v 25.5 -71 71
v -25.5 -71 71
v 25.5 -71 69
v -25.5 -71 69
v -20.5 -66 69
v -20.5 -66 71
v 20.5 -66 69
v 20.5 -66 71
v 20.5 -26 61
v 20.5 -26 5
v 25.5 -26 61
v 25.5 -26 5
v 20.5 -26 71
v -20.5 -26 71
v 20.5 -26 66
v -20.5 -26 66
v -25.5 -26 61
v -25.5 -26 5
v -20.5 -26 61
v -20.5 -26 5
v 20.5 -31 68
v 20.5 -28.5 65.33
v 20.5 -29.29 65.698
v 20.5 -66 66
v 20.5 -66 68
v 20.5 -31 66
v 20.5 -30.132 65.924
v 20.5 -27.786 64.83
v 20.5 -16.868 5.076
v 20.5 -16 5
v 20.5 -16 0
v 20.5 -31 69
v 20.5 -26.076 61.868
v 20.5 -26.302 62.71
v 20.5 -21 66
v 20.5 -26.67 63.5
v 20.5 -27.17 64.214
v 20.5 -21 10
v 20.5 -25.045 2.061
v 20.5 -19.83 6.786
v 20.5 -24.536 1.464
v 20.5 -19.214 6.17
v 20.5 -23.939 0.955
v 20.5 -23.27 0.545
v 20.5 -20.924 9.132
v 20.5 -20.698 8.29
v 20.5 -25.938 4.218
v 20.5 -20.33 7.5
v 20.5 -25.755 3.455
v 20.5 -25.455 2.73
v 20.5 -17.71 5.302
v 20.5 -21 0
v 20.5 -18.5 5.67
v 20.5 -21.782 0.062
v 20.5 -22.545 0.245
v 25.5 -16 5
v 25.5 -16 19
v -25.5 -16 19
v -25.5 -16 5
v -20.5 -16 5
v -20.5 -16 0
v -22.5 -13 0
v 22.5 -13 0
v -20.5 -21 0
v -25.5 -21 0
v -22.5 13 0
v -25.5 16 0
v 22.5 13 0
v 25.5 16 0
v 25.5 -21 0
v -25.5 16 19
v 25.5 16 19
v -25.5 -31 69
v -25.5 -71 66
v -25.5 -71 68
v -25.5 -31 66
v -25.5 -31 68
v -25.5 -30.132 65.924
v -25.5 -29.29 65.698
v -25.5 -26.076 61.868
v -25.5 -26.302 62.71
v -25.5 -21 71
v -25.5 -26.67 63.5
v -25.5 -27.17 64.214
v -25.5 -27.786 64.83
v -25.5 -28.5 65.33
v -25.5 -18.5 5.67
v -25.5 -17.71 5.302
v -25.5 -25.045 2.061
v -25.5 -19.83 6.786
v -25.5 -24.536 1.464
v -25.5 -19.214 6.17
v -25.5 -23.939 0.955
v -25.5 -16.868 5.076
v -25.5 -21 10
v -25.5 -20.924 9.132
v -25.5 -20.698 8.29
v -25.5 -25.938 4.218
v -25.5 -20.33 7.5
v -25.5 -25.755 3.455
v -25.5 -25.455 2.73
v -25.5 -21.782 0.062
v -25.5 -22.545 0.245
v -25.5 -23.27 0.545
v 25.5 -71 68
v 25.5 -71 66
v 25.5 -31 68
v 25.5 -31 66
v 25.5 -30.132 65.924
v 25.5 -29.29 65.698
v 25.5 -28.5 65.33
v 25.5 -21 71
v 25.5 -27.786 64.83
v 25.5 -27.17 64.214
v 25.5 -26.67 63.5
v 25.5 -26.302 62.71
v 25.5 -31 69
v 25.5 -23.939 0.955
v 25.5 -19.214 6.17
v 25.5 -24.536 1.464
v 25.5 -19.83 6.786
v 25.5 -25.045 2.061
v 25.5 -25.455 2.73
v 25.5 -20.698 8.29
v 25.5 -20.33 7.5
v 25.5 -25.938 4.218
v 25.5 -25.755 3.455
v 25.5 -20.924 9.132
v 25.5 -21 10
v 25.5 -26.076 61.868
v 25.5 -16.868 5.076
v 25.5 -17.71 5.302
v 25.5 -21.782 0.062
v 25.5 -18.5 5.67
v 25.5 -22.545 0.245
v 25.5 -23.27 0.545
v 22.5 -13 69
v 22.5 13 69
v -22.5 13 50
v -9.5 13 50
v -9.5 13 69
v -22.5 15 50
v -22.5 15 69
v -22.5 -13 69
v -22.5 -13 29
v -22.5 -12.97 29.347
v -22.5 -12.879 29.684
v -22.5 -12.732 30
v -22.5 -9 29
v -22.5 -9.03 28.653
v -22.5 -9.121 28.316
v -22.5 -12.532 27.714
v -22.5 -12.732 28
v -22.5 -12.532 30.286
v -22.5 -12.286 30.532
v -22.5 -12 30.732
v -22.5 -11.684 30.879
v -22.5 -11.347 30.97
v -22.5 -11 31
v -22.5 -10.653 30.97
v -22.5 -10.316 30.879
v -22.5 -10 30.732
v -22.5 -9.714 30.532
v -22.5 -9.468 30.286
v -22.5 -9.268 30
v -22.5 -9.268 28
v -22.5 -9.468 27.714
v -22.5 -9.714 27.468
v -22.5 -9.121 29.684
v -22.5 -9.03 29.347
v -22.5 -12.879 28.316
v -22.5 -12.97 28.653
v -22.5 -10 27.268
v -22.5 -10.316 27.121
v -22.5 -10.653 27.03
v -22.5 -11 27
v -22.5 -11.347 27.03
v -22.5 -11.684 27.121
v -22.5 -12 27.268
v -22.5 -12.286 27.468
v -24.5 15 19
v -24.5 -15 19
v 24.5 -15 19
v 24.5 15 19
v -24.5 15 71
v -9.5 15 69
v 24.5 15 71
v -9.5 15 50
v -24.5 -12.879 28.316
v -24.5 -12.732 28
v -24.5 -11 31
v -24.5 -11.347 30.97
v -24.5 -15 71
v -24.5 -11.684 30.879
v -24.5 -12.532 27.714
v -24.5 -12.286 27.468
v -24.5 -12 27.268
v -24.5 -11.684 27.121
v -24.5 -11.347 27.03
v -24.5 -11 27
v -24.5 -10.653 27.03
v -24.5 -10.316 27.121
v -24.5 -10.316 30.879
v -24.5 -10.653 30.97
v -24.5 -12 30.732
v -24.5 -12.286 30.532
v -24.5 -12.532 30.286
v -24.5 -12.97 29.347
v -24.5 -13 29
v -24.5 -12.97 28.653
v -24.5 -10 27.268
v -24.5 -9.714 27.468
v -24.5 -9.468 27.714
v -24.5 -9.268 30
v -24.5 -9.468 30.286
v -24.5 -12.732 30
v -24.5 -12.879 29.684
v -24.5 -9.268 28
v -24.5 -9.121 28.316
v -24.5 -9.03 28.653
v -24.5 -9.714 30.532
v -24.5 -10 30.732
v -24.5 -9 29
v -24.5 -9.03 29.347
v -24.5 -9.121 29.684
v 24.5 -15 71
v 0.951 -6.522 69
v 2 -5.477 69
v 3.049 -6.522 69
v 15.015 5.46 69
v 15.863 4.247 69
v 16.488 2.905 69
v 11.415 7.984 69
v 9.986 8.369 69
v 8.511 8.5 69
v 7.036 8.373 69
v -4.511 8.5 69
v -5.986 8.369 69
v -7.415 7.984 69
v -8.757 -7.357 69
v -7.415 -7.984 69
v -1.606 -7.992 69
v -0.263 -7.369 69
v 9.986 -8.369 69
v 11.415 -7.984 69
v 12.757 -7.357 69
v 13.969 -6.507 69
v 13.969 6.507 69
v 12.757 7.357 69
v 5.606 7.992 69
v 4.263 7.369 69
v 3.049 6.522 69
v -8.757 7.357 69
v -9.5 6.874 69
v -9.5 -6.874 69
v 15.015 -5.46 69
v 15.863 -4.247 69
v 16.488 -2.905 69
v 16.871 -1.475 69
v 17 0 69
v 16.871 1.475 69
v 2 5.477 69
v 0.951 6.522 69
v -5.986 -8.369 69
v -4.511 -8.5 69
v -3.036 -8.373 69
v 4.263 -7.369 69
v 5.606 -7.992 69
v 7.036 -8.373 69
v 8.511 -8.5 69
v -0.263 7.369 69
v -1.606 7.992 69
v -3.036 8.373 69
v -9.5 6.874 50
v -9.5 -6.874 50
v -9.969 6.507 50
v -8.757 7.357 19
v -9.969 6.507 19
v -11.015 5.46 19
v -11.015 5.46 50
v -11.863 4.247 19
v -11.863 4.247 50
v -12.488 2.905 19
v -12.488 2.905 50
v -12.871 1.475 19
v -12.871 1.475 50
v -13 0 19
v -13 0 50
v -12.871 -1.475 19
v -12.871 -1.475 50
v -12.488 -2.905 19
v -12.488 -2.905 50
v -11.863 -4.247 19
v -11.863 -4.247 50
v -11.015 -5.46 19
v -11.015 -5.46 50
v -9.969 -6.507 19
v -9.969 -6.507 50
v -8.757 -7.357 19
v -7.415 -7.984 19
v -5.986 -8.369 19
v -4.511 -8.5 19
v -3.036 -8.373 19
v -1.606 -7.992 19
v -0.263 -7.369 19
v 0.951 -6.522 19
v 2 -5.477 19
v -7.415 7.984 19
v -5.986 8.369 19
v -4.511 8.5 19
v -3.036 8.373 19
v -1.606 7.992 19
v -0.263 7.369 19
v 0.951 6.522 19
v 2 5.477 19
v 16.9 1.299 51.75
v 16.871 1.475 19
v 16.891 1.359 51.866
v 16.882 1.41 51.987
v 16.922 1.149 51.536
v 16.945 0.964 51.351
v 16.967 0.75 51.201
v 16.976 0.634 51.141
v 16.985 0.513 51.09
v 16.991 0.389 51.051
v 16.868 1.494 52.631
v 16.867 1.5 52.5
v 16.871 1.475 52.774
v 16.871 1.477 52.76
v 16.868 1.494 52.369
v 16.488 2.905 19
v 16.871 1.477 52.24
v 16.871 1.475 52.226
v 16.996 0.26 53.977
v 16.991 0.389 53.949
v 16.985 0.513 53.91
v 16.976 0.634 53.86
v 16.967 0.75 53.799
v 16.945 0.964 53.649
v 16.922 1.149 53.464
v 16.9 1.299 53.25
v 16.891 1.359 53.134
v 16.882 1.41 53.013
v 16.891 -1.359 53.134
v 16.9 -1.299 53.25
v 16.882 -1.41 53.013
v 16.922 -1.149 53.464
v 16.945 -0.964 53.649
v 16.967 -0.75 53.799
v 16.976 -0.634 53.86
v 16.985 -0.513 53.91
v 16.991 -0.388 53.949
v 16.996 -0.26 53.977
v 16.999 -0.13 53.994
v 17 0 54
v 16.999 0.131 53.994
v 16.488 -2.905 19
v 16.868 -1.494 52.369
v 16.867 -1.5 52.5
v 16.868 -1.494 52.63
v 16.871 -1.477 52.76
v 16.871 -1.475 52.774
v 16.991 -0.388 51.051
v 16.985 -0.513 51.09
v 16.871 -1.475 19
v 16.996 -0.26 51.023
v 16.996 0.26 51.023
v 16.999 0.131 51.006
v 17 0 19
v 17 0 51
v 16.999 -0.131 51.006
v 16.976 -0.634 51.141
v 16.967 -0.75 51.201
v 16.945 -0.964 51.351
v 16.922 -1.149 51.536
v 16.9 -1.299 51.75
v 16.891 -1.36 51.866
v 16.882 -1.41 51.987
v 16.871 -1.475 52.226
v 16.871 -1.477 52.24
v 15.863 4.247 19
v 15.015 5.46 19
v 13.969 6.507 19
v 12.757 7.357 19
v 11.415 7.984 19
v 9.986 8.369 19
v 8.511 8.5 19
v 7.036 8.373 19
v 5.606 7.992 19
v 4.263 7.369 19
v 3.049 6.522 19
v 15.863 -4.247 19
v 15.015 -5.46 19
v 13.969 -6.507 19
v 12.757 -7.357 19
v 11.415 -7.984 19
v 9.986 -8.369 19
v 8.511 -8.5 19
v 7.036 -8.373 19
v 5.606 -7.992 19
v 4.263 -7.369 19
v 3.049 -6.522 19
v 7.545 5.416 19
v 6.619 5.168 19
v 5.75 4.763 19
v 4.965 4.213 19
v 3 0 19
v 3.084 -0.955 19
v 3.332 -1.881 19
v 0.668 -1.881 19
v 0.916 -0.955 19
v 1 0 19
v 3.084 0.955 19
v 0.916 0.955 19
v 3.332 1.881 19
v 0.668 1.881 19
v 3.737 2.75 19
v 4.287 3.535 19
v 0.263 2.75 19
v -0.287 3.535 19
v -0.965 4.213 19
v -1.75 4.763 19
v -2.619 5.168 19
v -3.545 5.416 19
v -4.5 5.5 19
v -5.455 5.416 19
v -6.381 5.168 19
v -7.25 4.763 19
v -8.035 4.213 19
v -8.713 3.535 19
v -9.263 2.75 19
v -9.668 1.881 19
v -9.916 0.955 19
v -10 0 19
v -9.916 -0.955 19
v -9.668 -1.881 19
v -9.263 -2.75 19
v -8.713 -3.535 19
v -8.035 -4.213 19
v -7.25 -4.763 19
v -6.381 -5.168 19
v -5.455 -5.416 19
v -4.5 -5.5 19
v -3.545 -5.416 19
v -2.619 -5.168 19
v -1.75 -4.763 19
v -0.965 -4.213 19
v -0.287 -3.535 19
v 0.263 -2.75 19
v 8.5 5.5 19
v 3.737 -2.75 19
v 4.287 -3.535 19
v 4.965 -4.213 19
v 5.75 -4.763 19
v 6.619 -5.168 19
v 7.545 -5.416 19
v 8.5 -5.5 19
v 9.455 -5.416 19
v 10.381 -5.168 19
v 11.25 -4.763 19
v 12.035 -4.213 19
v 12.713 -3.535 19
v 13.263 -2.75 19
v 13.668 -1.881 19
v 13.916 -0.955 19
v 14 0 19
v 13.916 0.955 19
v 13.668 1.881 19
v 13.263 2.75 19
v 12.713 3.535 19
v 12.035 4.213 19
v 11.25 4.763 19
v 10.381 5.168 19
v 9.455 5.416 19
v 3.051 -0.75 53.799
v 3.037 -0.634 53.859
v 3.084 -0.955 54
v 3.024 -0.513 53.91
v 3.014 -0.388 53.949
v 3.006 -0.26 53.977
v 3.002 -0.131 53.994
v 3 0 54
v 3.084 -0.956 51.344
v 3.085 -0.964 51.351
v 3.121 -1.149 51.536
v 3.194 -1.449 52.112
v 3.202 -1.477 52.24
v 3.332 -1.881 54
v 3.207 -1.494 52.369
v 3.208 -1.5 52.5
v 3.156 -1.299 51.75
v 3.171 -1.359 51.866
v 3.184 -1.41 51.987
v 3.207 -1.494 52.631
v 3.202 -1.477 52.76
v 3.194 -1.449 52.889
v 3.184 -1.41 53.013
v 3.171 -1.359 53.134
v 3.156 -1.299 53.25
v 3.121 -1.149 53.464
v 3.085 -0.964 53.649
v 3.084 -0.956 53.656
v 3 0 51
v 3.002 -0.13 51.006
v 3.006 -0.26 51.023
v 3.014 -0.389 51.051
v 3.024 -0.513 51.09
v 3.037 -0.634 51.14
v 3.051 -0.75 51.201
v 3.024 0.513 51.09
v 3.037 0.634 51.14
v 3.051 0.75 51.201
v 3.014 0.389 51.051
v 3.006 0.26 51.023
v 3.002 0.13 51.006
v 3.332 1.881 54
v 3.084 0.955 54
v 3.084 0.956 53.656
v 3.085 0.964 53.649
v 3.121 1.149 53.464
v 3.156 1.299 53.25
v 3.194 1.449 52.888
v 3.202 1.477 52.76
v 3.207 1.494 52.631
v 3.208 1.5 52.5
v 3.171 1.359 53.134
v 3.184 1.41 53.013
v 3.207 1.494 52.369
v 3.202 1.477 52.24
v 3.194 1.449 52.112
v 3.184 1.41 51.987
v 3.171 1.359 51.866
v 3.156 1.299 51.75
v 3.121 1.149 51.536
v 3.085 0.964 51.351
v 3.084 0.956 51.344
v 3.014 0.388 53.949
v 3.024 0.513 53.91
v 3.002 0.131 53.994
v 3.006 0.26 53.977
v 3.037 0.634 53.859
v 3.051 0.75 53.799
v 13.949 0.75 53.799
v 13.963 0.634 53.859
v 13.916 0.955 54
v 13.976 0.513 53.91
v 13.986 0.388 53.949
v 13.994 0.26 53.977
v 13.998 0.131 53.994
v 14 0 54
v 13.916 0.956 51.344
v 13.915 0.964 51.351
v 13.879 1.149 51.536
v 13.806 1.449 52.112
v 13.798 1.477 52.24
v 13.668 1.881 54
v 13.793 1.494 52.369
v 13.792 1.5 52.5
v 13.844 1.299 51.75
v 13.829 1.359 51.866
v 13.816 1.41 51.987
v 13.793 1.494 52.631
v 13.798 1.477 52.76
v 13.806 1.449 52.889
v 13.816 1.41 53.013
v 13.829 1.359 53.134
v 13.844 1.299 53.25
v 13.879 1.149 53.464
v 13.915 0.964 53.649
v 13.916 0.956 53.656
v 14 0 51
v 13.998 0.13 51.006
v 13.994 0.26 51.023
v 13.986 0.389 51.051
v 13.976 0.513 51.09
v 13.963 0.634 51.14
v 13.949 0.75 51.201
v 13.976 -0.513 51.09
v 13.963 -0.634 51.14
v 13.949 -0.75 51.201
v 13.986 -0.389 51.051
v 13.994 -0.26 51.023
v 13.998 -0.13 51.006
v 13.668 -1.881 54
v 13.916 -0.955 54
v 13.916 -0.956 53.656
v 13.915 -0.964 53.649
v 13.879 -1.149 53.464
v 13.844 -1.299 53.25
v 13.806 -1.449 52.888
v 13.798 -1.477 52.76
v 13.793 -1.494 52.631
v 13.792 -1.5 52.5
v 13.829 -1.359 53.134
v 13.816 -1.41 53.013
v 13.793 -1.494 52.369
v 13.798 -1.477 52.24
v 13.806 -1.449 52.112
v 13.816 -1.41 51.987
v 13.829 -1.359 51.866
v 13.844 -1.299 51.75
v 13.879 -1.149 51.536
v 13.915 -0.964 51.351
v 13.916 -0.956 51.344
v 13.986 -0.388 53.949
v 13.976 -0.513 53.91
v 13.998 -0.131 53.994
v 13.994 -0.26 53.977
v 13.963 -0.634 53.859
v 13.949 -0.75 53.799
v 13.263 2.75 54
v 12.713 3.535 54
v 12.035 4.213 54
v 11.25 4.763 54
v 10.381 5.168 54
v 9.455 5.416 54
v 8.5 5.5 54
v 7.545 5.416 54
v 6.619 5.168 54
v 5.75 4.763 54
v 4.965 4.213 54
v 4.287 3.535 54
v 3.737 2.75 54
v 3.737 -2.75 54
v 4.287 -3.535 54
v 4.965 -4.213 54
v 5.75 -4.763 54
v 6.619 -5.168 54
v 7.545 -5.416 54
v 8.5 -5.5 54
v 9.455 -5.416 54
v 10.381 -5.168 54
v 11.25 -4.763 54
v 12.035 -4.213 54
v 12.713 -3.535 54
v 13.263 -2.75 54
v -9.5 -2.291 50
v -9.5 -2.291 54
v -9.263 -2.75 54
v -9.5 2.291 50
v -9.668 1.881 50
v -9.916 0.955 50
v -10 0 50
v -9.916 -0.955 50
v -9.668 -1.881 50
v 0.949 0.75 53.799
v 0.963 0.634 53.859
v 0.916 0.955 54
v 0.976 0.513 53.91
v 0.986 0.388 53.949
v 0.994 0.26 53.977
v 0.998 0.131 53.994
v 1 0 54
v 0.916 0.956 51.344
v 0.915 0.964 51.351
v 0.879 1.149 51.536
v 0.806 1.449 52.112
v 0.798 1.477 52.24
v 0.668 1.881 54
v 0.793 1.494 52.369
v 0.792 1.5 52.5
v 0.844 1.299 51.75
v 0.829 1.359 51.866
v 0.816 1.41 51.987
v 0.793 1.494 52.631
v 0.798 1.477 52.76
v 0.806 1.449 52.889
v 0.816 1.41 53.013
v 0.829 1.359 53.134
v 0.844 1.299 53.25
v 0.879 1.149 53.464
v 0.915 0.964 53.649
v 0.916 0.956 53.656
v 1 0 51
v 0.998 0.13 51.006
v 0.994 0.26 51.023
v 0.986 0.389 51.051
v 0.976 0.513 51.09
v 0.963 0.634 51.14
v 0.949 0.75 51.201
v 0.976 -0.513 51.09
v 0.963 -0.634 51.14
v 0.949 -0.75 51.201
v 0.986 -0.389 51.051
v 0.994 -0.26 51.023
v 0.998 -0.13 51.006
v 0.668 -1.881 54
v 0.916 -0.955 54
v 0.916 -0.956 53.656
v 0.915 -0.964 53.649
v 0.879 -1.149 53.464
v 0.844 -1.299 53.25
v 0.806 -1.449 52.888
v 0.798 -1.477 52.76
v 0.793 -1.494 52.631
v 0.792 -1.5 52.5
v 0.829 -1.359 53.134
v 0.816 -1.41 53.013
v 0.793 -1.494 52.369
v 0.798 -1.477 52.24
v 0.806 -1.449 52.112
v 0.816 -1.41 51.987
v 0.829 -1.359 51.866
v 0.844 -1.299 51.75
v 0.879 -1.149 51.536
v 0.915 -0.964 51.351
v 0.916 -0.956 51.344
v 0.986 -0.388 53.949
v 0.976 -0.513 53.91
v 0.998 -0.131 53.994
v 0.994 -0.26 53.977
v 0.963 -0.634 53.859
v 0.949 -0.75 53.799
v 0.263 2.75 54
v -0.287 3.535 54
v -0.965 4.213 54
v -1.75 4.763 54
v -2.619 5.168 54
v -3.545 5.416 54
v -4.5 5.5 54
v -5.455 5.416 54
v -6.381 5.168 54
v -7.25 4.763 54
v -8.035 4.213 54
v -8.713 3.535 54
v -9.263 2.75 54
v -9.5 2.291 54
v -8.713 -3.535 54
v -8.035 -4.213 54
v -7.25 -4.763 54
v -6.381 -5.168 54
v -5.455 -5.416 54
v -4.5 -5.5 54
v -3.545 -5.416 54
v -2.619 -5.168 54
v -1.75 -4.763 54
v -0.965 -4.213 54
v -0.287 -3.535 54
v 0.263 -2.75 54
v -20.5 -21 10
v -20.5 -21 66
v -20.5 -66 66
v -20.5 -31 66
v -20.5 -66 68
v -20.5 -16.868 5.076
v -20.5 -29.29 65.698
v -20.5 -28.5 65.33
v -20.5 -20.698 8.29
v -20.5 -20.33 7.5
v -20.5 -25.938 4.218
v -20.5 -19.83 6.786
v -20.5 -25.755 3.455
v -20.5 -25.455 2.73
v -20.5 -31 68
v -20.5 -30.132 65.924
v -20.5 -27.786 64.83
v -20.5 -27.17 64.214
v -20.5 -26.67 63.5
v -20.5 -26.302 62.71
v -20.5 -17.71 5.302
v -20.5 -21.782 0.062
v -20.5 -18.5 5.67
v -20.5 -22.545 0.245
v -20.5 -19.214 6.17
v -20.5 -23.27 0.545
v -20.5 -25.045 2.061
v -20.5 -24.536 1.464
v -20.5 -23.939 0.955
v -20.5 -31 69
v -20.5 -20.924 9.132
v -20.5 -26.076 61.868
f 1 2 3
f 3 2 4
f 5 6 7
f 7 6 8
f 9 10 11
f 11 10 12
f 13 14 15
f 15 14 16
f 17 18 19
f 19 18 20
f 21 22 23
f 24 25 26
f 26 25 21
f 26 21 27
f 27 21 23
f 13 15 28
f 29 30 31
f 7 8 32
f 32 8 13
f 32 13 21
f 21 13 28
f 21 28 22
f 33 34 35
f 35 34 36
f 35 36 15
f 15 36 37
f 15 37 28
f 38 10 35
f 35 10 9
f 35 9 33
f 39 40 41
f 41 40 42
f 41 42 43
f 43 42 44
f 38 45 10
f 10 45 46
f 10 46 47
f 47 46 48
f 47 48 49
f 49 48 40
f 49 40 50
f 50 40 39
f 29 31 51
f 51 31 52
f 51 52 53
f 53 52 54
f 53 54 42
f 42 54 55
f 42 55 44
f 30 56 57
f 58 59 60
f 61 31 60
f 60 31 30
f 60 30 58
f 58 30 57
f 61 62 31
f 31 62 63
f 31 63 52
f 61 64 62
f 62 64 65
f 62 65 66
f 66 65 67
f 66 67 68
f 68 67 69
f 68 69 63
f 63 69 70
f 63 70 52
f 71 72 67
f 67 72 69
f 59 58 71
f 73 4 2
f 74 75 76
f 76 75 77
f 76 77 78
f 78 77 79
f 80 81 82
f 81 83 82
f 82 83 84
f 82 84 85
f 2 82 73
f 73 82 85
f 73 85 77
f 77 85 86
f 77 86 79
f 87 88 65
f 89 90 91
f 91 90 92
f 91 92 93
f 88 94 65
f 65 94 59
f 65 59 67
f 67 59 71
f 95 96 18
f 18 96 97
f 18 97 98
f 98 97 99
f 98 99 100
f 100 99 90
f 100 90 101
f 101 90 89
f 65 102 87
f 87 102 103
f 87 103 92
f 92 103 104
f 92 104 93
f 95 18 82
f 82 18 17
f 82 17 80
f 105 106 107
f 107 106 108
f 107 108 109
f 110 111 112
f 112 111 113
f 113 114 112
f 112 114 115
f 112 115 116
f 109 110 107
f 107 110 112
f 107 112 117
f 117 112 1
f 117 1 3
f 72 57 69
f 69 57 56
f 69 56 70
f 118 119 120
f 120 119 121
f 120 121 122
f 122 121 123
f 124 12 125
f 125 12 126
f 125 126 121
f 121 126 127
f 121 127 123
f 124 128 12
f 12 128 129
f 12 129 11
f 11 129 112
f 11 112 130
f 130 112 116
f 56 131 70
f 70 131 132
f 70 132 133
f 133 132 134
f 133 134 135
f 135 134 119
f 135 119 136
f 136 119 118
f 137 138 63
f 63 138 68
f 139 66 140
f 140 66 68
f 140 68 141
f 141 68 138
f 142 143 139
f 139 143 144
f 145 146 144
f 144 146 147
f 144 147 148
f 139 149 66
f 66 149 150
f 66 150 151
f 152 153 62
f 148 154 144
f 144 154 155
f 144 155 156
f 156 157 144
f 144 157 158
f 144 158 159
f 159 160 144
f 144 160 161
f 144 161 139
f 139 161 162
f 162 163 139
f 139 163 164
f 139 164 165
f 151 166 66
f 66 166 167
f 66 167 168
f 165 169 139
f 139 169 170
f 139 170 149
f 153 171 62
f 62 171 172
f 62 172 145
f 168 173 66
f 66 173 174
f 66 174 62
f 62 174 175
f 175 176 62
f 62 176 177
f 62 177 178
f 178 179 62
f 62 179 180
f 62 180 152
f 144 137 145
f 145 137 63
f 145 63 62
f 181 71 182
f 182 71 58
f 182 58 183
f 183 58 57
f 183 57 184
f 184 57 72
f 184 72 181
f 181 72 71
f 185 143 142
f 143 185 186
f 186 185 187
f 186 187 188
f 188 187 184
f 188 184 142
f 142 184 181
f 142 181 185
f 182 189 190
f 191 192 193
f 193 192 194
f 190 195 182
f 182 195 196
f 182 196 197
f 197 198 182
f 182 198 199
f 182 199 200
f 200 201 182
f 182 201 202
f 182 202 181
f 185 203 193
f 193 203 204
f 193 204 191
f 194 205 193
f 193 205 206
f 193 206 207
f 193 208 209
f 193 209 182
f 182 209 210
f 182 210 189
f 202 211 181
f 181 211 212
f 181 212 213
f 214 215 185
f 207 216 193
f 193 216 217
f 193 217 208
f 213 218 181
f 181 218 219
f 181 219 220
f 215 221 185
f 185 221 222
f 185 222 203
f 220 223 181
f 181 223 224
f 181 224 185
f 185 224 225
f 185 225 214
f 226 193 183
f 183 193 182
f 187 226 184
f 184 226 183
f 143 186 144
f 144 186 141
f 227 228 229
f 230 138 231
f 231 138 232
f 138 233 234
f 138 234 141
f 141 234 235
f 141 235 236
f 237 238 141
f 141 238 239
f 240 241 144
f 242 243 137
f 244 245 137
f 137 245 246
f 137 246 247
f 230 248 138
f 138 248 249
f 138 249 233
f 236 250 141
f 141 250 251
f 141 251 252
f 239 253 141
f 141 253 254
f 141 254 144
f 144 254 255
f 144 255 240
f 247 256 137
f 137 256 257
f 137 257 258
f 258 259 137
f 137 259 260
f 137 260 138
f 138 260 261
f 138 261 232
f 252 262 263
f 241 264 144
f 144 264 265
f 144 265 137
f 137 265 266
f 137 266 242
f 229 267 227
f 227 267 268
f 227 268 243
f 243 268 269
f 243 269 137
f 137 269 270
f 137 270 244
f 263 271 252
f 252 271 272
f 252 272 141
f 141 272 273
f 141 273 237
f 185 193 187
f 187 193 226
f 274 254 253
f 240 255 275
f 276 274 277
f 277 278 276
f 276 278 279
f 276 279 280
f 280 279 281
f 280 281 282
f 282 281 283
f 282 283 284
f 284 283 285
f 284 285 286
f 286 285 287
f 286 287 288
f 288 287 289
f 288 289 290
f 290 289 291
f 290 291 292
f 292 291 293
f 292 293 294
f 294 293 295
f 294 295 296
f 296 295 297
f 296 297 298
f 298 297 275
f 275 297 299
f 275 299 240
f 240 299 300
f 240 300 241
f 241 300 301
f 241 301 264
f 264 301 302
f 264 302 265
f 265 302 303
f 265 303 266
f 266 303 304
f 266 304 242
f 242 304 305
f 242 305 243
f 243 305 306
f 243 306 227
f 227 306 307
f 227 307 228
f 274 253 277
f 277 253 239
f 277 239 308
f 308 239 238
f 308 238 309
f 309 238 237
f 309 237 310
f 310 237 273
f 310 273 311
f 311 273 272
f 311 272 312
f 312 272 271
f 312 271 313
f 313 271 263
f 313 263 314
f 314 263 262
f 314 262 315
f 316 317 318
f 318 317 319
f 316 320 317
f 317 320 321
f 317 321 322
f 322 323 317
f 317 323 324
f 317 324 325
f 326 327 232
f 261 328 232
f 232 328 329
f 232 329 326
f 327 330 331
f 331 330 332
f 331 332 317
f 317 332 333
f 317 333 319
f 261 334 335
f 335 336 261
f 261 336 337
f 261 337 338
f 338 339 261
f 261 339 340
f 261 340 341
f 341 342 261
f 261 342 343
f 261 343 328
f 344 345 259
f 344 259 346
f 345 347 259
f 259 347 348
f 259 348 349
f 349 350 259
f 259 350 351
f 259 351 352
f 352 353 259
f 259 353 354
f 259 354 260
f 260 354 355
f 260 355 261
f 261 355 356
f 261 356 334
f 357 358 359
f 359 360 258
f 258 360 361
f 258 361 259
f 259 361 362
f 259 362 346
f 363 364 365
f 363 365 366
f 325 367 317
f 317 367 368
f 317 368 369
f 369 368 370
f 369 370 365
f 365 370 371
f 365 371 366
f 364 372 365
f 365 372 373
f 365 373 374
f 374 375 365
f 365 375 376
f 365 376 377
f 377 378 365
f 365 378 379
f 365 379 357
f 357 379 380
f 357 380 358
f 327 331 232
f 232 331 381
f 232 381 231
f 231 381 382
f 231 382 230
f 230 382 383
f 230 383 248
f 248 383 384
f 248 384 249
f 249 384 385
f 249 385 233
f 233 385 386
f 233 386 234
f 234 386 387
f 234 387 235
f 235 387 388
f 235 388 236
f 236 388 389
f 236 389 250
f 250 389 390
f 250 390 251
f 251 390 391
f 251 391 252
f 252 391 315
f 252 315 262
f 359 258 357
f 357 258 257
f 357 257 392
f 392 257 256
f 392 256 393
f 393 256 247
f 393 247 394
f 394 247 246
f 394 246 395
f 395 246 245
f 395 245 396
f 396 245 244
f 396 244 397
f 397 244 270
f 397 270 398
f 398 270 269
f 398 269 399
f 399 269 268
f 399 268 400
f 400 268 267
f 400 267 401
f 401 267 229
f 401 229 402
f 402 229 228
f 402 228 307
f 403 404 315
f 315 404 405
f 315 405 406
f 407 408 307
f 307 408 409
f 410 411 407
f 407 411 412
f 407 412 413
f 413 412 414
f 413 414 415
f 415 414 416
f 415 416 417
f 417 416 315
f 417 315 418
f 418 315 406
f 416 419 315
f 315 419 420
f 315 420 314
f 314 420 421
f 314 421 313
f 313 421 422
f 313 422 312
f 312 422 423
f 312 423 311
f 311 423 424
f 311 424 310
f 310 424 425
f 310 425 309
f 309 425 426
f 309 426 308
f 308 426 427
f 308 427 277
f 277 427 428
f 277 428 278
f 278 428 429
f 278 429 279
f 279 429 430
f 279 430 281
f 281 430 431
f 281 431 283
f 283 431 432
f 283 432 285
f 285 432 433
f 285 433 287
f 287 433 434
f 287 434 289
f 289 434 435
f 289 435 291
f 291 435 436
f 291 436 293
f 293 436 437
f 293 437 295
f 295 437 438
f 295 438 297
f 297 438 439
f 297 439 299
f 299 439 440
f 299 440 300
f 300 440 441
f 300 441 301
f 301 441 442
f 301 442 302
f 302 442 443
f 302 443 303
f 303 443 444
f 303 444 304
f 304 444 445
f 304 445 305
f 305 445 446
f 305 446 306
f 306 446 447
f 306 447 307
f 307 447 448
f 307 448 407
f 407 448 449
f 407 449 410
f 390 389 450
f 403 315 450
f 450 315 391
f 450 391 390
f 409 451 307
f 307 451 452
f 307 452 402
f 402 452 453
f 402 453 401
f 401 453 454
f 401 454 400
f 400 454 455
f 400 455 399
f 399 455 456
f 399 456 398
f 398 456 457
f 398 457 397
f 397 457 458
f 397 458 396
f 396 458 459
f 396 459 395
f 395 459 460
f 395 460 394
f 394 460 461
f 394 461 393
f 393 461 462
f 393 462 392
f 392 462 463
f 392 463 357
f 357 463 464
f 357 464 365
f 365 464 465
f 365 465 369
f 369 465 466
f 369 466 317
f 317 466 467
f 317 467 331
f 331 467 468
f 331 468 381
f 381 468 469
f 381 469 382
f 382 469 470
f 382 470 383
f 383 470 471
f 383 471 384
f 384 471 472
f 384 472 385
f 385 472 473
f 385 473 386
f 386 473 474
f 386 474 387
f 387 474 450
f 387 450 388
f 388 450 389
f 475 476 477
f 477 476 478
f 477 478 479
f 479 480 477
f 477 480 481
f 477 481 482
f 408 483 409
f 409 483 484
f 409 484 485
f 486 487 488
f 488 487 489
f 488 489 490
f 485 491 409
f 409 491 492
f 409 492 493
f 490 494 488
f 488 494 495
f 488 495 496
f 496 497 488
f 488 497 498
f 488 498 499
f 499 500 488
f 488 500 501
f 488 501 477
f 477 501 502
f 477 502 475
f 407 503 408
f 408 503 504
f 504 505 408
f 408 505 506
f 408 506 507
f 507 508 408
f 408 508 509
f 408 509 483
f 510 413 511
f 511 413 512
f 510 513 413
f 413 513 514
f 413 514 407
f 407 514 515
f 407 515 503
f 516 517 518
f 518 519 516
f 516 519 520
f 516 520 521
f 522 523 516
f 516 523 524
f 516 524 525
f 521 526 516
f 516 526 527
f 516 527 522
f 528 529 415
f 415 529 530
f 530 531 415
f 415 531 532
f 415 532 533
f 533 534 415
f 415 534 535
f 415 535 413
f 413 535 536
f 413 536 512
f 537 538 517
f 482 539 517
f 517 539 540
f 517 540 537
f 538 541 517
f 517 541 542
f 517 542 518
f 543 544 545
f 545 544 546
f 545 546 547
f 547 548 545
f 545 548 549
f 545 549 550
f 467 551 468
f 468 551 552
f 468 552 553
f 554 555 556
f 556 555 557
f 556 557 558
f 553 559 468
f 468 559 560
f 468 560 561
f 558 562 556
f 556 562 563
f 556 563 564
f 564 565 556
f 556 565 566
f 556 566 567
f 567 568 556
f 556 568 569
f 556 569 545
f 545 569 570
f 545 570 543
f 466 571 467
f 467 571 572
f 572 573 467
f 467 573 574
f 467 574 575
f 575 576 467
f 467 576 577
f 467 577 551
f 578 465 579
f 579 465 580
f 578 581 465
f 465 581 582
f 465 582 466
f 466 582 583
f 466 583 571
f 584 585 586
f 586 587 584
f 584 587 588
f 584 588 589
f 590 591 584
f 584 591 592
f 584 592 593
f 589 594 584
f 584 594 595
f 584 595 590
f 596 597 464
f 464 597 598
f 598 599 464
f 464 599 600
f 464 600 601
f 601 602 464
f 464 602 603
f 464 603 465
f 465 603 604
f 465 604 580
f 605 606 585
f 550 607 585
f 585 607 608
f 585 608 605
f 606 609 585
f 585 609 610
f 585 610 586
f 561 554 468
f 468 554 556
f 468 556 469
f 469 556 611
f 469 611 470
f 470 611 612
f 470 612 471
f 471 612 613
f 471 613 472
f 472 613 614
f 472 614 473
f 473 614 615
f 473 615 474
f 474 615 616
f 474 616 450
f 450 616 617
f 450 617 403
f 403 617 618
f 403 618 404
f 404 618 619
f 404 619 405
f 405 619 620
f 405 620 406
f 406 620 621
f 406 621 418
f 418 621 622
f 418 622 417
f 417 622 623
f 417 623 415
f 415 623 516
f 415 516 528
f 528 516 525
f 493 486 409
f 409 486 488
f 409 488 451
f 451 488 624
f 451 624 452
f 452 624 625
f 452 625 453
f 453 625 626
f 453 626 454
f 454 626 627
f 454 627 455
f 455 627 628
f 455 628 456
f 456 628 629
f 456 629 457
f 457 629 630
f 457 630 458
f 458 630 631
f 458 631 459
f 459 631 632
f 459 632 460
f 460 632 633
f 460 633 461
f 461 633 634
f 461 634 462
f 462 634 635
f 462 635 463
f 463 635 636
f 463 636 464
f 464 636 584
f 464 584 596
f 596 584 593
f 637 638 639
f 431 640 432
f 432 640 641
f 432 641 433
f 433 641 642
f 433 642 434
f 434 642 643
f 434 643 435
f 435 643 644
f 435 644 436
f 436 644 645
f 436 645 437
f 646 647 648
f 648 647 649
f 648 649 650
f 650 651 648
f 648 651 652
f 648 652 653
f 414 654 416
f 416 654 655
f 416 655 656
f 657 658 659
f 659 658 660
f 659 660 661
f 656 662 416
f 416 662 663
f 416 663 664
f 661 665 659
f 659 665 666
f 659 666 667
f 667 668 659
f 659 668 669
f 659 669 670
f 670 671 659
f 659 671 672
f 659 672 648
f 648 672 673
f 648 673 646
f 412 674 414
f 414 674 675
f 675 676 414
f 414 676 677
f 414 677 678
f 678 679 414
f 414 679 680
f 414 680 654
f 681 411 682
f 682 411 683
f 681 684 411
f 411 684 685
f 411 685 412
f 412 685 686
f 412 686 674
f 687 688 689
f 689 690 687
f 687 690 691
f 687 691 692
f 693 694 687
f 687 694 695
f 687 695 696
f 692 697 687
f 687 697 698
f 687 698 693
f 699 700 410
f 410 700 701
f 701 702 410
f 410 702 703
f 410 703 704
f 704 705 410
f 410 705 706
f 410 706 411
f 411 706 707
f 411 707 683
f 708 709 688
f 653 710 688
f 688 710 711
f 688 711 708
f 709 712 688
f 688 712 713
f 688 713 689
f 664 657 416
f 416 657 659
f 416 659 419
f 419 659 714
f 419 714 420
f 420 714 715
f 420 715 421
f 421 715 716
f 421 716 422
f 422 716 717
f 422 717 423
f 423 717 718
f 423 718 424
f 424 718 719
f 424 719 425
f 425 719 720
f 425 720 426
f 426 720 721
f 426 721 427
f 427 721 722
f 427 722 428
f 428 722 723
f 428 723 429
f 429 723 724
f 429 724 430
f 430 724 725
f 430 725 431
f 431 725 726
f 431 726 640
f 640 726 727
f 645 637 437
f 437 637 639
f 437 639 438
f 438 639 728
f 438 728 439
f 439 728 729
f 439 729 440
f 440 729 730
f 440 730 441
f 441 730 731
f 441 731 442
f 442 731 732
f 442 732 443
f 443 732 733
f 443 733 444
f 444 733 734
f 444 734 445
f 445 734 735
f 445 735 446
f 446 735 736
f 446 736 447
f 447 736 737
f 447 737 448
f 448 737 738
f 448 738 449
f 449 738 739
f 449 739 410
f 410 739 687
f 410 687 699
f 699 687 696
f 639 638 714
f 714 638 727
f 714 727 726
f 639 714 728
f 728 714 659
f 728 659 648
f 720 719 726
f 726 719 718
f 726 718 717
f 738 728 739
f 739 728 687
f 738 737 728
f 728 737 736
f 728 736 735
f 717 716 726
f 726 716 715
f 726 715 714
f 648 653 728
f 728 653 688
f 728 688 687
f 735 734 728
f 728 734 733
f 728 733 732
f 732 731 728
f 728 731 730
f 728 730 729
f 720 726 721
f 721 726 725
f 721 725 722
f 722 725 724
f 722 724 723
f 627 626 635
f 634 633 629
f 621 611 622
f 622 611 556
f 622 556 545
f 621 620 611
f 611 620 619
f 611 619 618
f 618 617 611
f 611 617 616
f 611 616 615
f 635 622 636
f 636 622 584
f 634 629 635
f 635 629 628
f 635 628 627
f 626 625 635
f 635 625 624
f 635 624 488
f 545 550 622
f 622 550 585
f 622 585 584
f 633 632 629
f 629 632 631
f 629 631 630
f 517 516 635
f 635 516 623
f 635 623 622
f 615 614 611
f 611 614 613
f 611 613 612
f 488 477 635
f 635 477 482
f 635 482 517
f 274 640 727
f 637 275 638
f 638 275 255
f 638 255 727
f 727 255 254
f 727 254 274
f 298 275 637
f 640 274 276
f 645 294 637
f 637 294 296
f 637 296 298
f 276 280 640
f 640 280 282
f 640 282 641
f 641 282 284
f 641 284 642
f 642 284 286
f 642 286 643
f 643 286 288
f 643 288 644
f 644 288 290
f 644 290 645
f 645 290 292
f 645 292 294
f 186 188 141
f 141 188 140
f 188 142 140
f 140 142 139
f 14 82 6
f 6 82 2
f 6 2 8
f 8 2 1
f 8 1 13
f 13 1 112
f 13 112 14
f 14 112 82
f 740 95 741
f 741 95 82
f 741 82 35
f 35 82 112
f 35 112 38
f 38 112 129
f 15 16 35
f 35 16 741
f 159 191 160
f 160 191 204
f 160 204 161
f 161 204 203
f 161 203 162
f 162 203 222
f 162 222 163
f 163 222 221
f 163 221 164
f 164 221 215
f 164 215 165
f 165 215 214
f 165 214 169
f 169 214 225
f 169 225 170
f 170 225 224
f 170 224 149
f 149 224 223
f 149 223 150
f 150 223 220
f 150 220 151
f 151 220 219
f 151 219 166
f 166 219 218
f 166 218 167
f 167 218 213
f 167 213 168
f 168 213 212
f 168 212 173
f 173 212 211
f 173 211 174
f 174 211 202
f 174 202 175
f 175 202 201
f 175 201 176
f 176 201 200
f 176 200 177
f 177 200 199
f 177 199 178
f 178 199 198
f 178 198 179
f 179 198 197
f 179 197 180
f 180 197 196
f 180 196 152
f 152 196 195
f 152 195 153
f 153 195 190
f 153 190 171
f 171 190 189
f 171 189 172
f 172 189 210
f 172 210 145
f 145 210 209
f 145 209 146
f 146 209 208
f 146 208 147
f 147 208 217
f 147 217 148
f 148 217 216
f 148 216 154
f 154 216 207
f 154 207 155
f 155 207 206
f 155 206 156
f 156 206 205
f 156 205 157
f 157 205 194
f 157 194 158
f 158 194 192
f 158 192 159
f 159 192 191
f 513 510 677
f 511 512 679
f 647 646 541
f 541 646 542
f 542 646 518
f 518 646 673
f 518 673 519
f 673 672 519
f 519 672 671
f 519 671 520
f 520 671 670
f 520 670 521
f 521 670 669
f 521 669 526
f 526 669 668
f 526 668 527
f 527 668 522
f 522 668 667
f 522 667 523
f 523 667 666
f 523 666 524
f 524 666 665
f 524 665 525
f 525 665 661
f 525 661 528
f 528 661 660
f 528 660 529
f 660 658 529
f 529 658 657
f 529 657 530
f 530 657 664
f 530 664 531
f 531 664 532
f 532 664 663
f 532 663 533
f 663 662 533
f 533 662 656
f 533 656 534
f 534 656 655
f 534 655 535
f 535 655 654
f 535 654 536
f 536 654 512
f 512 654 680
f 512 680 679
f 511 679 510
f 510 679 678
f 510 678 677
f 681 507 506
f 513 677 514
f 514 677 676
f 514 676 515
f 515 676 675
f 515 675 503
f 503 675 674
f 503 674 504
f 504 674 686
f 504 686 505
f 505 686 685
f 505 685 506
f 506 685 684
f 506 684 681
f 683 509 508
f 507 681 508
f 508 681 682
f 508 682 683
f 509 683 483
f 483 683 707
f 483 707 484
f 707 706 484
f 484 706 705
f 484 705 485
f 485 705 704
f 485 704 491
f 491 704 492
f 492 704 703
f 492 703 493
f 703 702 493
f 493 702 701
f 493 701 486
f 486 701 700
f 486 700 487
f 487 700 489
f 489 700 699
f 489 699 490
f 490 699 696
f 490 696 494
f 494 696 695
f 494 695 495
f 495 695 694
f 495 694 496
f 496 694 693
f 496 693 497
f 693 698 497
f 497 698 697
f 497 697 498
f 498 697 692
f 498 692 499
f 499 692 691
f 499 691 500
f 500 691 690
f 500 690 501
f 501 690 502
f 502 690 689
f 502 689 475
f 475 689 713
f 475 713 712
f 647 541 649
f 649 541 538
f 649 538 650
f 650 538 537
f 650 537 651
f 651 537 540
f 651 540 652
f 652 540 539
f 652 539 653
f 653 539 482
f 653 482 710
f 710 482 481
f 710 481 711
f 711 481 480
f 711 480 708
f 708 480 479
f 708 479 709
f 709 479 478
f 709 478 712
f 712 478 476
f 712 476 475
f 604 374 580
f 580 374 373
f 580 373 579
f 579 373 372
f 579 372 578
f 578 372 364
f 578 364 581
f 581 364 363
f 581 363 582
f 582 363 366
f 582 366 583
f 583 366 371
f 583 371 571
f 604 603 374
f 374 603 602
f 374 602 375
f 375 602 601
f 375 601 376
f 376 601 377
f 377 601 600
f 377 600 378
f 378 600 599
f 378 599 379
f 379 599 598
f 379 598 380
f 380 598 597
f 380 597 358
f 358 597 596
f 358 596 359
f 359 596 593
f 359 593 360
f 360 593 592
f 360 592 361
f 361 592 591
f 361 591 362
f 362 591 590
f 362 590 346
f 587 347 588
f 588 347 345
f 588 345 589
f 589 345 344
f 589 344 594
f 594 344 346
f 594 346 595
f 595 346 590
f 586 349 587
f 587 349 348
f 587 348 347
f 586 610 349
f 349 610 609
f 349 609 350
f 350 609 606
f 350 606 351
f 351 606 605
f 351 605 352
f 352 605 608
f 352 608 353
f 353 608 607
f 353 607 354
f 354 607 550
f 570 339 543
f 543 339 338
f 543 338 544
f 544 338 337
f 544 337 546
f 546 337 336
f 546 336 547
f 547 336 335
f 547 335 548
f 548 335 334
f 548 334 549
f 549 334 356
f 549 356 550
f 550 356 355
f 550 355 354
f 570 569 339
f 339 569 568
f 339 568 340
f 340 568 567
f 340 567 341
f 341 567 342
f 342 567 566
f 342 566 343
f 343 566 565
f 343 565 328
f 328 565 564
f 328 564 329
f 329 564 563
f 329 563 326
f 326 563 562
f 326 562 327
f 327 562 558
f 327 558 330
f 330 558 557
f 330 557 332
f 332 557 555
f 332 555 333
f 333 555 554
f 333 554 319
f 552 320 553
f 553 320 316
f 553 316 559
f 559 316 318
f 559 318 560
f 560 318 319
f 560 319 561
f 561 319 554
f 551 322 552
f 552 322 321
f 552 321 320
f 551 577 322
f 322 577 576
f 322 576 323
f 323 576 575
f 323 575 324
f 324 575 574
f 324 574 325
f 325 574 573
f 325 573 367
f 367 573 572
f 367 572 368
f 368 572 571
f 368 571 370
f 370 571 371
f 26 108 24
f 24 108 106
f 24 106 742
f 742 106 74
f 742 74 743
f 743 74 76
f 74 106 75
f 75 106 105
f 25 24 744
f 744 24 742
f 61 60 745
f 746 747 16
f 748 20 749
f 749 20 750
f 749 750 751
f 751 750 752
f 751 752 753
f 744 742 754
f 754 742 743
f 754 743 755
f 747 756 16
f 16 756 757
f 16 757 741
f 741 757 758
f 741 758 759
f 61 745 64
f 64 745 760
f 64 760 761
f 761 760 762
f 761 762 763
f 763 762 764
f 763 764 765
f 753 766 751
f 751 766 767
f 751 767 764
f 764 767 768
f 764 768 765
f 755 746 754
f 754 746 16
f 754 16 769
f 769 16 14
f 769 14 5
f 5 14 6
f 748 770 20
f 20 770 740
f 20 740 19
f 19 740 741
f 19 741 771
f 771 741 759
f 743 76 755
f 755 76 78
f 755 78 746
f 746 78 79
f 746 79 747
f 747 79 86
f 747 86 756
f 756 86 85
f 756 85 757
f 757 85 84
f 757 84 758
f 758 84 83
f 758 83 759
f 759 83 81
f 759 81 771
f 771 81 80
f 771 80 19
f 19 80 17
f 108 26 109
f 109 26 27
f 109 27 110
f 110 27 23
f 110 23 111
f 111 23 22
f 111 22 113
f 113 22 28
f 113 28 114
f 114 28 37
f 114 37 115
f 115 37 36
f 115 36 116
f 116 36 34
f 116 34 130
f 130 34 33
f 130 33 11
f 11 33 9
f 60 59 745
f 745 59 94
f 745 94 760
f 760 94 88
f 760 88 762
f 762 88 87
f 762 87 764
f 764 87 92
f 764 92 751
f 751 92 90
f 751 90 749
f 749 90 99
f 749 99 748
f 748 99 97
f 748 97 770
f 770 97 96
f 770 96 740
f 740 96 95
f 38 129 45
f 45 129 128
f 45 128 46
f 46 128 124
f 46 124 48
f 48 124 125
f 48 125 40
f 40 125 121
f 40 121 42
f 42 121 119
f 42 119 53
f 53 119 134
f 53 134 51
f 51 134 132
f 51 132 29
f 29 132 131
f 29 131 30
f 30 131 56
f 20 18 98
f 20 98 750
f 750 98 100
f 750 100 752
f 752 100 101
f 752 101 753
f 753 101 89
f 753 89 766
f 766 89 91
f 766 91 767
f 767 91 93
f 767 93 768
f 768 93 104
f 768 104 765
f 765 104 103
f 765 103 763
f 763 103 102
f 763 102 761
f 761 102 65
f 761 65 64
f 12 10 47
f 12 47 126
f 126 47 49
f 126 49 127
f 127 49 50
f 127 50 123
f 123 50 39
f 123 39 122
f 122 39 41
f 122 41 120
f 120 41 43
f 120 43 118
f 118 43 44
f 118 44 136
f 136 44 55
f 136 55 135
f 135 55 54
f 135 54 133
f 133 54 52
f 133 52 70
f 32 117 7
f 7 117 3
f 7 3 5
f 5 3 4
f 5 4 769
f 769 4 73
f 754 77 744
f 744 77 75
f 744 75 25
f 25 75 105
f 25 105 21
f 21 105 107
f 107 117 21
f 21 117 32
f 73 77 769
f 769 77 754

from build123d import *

# Parameters (mm, degrees)
ESBO_O1_W                 = 45
ESBO_O1_H                 = 26
RESSALTO_EXTRUS_O1_DEPTH  = 5
RESSALTO_EXTRUS_O4_START  = -5
ESBO_O6_W                 = 51
ESBO_O6_H                 = 32
ESBO_O6_W_2               = 45
ESBO_O6_H_2               = 26
RESSALTO_EXTRUS_O4_DEPTH  = 14
ESBO_O7_W                 = 49
ESBO_O7_H                 = 30
ESBO_O7_W_2               = 45
ESBO_O7_H_2               = 26
RESSALTO_EXTRUS_O5_DEPTH  = 50
ESBO_O8_W                 = 49
ESBO_O8_H                 = 30
RESSALTO_EXTRUS_O6_DEPTH  = 2
RESSALTO_EXTRUS_O9_DEPTH  = 15
ESBO_O11_R                = 5.5
RESSALTO_EXTRUS_O10_DEPTH = 35
ESBO_O9_W                 = 13
ESBO_O9_H                 = 19
CORTE_EXTRUS_O2_DEPTH     = 23
ESBO_O12_W                = 5
ESBO_O12_H                = 5
RESSALTO_EXTRUS_O11_DEPTH = 5
ESBO_O13_W                = 5
ESBO_O13_H                = 5
RESSALTO_EXTRUS_O12_DEPTH = 71
ESBO_O14_W                = 51
ESBO_O14_H                = 5
RESSALTO_EXTRUS_O13_DEPTH = 5
ESBO_O16_R                = 2
CORTE_EXTRUS_O4_DEPTH     = 3
ESBO_O17_R                = 1.5
CORTE_EXTRUS_O5_DEPTH     = 19
ESBO_O18_W                = 51
ESBO_O18_H                = 50
ESBO_O18_W_2              = 41
ESBO_O18_H_2              = 40
RESSALTO_EXTRUS_O14_DEPTH = 5
FILETE3_R                 = 5
ESBO_O19_W                = 51
ESBO_O19_H                = 1
CORTE_EXTRUS_O6_DEPTH     = 40


with BuildPart() as part:
    # Esboço1 → Ressalto-extrusão1 (new body)
    with BuildSketch(Plane.XY):
        Polygon((-25.5, 16), (-25.5, -16), (-22.5, -16), (22.5, -16), (25.5, -16), (25.5, 16), align=None)
        Rectangle(ESBO_O1_W, ESBO_O1_H, mode=Mode.SUBTRACT)
    extrude(amount=RESSALTO_EXTRUS_O1_DEPTH)

    # Esboço6 → Ressalto-extrusão4 (add)
    with BuildSketch(Plane(origin=(0, 0, 0), x_dir=(-1, 0, 0), z_dir=(0, 0, -1)).offset(RESSALTO_EXTRUS_O4_START)):
        Rectangle(ESBO_O6_W, ESBO_O6_H)
        Rectangle(ESBO_O6_W_2, ESBO_O6_H_2, mode=Mode.SUBTRACT)
    extrude(amount=-RESSALTO_EXTRUS_O4_DEPTH)

    # Esboço7 → Ressalto-extrusão5 (add)
    with BuildSketch(Plane.XY.offset(19)):
        Rectangle(ESBO_O7_W, ESBO_O7_H)
        Rectangle(ESBO_O7_W_2, ESBO_O7_H_2, mode=Mode.SUBTRACT)
    extrude(amount=RESSALTO_EXTRUS_O5_DEPTH)

    # Esboço8 → Ressalto-extrusão6 (add)
    with BuildSketch(Plane.XY.offset(69)):
        Rectangle(ESBO_O8_W, ESBO_O8_H)
    extrude(amount=RESSALTO_EXTRUS_O6_DEPTH)

    # Esboço10 → Ressalto-extrusão9 (add)
    with BuildSketch(Plane(origin=(0, 0, 69), x_dir=(-1, 0, 0), z_dir=(0, 0, -1))):
        with BuildLine():
            ThreePointArc((-2, 5.477225575), (-17, 0), (-2, -5.477225575))
            ThreePointArc((-2, -5.477225575), (13, 0), (-2, 5.477225575))
        make_face()
    extrude(amount=RESSALTO_EXTRUS_O9_DEPTH)

    # Esboço11 → Ressalto-extrusão10 (add)
    with BuildSketch(Plane(origin=(0, 0, 54), x_dir=(-1, 0, 0), z_dir=(0, 0, -1))):
        with BuildLine():
            ThreePointArc((-2, -5.477225575), (13, 0), (-2, 5.477225575))
            ThreePointArc((-2, 5.477225575), (-17, 0), (-2, -5.477225575))
        make_face()
        with Locations((-8.5, 0)):
            Circle(ESBO_O11_R, mode=Mode.SUBTRACT)
        with Locations((4.5, 0)):
            Circle(ESBO_O11_R, mode=Mode.SUBTRACT)
    extrude(amount=RESSALTO_EXTRUS_O10_DEPTH)

    # Esboço9 → Corte-extrusão2 (cut)
    with BuildSketch(Plane(origin=(0, 15, 0), x_dir=(1, 0, 0), z_dir=(0, 1, 0))):
        with Locations((-16, -59.5)):
            Rectangle(ESBO_O9_W, ESBO_O9_H)
    extrude(amount=-CORTE_EXTRUS_O2_DEPTH, mode=Mode.SUBTRACT)

    # Esboço12 → Ressalto-extrusão11 (add)
    with BuildSketch(Plane.XY):
        with Locations((23, -18.5)):
            Rectangle(ESBO_O12_W, ESBO_O12_H)
        with Locations((-23, -18.5)):
            Rectangle(ESBO_O12_W, ESBO_O12_H)
    extrude(amount=RESSALTO_EXTRUS_O11_DEPTH)

    # Esboço13 → Ressalto-extrusão12 (add)
    with BuildSketch(Plane(origin=(0, 0, 0), x_dir=(-1, 0, 0), z_dir=(0, 0, -1))):
        with Locations((23, -23.5)):
            Rectangle(ESBO_O13_W, ESBO_O13_H)
        with Locations((-23, -23.5)):
            Rectangle(ESBO_O13_W, ESBO_O13_H)
    extrude(amount=-RESSALTO_EXTRUS_O12_DEPTH)

    # Esboço14 → Ressalto-extrusão13 (add)
    with BuildSketch(Plane.XY.offset(71)):
        with Locations((0, -23.5)):
            Rectangle(ESBO_O14_W, ESBO_O14_H)
    extrude(amount=-RESSALTO_EXTRUS_O13_DEPTH)

    # Esboço16 → Corte-extrusão4 (cut)
    with BuildSketch(Plane.ZY.offset(24.5)):
        with Locations((29, -11)):
            Circle(ESBO_O16_R)
    extrude(amount=-CORTE_EXTRUS_O4_DEPTH, mode=Mode.SUBTRACT)

    # Esboço17 → Corte-extrusão5 (cut, symmetric)
    with BuildSketch(Plane(origin=(0, 0, 0), x_dir=(0, 0, -1), z_dir=(1, 0, 0))):
        with Locations((-52.5, 0)):
            Circle(ESBO_O17_R)
    extrude(amount=CORTE_EXTRUS_O5_DEPTH, both=True, mode=Mode.SUBTRACT)

    # Esboço18 → Ressalto-extrusão14 (add)
    with BuildSketch(Plane.XY.offset(71)):
        with Locations((0, -46)):
            Rectangle(ESBO_O18_W, ESBO_O18_H)
        with Locations((0, -46)):
            Rectangle(ESBO_O18_W_2, ESBO_O18_H_2, mode=Mode.SUBTRACT)
    extrude(amount=-RESSALTO_EXTRUS_O14_DEPTH)

    # Filete3
    # the kernel refuses this fillet: 5 mm, written as the material it adds along each edge
    with BuildSketch(Plane(origin=(20.5, -21, 5), x_dir=(0, 1, 0), z_dir=(1, 0, 0)), Plane(origin=(-20.5, -21, 5), x_dir=(0, 0, 1), z_dir=(-1, 0, 0)), Plane(origin=(25.5, -26, 66), x_dir=(0, 0, -1), z_dir=(-1, 0, 0)), Plane(origin=(-20.5, -26, 66), x_dir=(0, 0, -1), z_dir=(-1, 0, 0))) as filete3_piece_1:
        with BuildLine():
            CenterArc((FILETE3_R, FILETE3_R), FILETE3_R, 180, 90)
            Line((0, FILETE3_R), (0, 0))
            Line((0, 0), (FILETE3_R, 0))
        make_face()
    extrude(amount=5)
    # the kernel refuses this fillet: 5 mm, written as the material it takes off along each edge
    with BuildSketch(Plane(origin=(-38, -26, 0), x_dir=(0, 0, 1), z_dir=(1, 0, 0))) as filete3_2_piece_1:
        with BuildLine():
            CenterArc((FILETE3_R, -FILETE3_R), FILETE3_R, 90, 90)
            Line((0, -FILETE3_R), (0, 0))
            Line((0, 0), (FILETE3_R, 0))
        make_face()
    extrude(amount=30, mode=Mode.SUBTRACT)
    with BuildSketch(Plane(origin=(8, -26, 0), x_dir=(0, 1, 0), z_dir=(1, 0, 0))) as filete3_2_piece_2:
        with BuildLine():
            CenterArc((FILETE3_R, FILETE3_R), FILETE3_R, 180, 90)
            Line((0, FILETE3_R), (0, 0))
            Line((0, 0), (FILETE3_R, 0))
        make_face()
    extrude(amount=30, mode=Mode.SUBTRACT)

    # Esboço19 → Corte-extrusão6 (cut)
    with BuildSketch(Plane.XZ.offset(71)):
        with Locations((0, 68.5)):
            Rectangle(ESBO_O19_W, ESBO_O19_H)
    extrude(amount=-CORTE_EXTRUS_O6_DEPTH, mode=Mode.SUBTRACT)


solid = part.part
